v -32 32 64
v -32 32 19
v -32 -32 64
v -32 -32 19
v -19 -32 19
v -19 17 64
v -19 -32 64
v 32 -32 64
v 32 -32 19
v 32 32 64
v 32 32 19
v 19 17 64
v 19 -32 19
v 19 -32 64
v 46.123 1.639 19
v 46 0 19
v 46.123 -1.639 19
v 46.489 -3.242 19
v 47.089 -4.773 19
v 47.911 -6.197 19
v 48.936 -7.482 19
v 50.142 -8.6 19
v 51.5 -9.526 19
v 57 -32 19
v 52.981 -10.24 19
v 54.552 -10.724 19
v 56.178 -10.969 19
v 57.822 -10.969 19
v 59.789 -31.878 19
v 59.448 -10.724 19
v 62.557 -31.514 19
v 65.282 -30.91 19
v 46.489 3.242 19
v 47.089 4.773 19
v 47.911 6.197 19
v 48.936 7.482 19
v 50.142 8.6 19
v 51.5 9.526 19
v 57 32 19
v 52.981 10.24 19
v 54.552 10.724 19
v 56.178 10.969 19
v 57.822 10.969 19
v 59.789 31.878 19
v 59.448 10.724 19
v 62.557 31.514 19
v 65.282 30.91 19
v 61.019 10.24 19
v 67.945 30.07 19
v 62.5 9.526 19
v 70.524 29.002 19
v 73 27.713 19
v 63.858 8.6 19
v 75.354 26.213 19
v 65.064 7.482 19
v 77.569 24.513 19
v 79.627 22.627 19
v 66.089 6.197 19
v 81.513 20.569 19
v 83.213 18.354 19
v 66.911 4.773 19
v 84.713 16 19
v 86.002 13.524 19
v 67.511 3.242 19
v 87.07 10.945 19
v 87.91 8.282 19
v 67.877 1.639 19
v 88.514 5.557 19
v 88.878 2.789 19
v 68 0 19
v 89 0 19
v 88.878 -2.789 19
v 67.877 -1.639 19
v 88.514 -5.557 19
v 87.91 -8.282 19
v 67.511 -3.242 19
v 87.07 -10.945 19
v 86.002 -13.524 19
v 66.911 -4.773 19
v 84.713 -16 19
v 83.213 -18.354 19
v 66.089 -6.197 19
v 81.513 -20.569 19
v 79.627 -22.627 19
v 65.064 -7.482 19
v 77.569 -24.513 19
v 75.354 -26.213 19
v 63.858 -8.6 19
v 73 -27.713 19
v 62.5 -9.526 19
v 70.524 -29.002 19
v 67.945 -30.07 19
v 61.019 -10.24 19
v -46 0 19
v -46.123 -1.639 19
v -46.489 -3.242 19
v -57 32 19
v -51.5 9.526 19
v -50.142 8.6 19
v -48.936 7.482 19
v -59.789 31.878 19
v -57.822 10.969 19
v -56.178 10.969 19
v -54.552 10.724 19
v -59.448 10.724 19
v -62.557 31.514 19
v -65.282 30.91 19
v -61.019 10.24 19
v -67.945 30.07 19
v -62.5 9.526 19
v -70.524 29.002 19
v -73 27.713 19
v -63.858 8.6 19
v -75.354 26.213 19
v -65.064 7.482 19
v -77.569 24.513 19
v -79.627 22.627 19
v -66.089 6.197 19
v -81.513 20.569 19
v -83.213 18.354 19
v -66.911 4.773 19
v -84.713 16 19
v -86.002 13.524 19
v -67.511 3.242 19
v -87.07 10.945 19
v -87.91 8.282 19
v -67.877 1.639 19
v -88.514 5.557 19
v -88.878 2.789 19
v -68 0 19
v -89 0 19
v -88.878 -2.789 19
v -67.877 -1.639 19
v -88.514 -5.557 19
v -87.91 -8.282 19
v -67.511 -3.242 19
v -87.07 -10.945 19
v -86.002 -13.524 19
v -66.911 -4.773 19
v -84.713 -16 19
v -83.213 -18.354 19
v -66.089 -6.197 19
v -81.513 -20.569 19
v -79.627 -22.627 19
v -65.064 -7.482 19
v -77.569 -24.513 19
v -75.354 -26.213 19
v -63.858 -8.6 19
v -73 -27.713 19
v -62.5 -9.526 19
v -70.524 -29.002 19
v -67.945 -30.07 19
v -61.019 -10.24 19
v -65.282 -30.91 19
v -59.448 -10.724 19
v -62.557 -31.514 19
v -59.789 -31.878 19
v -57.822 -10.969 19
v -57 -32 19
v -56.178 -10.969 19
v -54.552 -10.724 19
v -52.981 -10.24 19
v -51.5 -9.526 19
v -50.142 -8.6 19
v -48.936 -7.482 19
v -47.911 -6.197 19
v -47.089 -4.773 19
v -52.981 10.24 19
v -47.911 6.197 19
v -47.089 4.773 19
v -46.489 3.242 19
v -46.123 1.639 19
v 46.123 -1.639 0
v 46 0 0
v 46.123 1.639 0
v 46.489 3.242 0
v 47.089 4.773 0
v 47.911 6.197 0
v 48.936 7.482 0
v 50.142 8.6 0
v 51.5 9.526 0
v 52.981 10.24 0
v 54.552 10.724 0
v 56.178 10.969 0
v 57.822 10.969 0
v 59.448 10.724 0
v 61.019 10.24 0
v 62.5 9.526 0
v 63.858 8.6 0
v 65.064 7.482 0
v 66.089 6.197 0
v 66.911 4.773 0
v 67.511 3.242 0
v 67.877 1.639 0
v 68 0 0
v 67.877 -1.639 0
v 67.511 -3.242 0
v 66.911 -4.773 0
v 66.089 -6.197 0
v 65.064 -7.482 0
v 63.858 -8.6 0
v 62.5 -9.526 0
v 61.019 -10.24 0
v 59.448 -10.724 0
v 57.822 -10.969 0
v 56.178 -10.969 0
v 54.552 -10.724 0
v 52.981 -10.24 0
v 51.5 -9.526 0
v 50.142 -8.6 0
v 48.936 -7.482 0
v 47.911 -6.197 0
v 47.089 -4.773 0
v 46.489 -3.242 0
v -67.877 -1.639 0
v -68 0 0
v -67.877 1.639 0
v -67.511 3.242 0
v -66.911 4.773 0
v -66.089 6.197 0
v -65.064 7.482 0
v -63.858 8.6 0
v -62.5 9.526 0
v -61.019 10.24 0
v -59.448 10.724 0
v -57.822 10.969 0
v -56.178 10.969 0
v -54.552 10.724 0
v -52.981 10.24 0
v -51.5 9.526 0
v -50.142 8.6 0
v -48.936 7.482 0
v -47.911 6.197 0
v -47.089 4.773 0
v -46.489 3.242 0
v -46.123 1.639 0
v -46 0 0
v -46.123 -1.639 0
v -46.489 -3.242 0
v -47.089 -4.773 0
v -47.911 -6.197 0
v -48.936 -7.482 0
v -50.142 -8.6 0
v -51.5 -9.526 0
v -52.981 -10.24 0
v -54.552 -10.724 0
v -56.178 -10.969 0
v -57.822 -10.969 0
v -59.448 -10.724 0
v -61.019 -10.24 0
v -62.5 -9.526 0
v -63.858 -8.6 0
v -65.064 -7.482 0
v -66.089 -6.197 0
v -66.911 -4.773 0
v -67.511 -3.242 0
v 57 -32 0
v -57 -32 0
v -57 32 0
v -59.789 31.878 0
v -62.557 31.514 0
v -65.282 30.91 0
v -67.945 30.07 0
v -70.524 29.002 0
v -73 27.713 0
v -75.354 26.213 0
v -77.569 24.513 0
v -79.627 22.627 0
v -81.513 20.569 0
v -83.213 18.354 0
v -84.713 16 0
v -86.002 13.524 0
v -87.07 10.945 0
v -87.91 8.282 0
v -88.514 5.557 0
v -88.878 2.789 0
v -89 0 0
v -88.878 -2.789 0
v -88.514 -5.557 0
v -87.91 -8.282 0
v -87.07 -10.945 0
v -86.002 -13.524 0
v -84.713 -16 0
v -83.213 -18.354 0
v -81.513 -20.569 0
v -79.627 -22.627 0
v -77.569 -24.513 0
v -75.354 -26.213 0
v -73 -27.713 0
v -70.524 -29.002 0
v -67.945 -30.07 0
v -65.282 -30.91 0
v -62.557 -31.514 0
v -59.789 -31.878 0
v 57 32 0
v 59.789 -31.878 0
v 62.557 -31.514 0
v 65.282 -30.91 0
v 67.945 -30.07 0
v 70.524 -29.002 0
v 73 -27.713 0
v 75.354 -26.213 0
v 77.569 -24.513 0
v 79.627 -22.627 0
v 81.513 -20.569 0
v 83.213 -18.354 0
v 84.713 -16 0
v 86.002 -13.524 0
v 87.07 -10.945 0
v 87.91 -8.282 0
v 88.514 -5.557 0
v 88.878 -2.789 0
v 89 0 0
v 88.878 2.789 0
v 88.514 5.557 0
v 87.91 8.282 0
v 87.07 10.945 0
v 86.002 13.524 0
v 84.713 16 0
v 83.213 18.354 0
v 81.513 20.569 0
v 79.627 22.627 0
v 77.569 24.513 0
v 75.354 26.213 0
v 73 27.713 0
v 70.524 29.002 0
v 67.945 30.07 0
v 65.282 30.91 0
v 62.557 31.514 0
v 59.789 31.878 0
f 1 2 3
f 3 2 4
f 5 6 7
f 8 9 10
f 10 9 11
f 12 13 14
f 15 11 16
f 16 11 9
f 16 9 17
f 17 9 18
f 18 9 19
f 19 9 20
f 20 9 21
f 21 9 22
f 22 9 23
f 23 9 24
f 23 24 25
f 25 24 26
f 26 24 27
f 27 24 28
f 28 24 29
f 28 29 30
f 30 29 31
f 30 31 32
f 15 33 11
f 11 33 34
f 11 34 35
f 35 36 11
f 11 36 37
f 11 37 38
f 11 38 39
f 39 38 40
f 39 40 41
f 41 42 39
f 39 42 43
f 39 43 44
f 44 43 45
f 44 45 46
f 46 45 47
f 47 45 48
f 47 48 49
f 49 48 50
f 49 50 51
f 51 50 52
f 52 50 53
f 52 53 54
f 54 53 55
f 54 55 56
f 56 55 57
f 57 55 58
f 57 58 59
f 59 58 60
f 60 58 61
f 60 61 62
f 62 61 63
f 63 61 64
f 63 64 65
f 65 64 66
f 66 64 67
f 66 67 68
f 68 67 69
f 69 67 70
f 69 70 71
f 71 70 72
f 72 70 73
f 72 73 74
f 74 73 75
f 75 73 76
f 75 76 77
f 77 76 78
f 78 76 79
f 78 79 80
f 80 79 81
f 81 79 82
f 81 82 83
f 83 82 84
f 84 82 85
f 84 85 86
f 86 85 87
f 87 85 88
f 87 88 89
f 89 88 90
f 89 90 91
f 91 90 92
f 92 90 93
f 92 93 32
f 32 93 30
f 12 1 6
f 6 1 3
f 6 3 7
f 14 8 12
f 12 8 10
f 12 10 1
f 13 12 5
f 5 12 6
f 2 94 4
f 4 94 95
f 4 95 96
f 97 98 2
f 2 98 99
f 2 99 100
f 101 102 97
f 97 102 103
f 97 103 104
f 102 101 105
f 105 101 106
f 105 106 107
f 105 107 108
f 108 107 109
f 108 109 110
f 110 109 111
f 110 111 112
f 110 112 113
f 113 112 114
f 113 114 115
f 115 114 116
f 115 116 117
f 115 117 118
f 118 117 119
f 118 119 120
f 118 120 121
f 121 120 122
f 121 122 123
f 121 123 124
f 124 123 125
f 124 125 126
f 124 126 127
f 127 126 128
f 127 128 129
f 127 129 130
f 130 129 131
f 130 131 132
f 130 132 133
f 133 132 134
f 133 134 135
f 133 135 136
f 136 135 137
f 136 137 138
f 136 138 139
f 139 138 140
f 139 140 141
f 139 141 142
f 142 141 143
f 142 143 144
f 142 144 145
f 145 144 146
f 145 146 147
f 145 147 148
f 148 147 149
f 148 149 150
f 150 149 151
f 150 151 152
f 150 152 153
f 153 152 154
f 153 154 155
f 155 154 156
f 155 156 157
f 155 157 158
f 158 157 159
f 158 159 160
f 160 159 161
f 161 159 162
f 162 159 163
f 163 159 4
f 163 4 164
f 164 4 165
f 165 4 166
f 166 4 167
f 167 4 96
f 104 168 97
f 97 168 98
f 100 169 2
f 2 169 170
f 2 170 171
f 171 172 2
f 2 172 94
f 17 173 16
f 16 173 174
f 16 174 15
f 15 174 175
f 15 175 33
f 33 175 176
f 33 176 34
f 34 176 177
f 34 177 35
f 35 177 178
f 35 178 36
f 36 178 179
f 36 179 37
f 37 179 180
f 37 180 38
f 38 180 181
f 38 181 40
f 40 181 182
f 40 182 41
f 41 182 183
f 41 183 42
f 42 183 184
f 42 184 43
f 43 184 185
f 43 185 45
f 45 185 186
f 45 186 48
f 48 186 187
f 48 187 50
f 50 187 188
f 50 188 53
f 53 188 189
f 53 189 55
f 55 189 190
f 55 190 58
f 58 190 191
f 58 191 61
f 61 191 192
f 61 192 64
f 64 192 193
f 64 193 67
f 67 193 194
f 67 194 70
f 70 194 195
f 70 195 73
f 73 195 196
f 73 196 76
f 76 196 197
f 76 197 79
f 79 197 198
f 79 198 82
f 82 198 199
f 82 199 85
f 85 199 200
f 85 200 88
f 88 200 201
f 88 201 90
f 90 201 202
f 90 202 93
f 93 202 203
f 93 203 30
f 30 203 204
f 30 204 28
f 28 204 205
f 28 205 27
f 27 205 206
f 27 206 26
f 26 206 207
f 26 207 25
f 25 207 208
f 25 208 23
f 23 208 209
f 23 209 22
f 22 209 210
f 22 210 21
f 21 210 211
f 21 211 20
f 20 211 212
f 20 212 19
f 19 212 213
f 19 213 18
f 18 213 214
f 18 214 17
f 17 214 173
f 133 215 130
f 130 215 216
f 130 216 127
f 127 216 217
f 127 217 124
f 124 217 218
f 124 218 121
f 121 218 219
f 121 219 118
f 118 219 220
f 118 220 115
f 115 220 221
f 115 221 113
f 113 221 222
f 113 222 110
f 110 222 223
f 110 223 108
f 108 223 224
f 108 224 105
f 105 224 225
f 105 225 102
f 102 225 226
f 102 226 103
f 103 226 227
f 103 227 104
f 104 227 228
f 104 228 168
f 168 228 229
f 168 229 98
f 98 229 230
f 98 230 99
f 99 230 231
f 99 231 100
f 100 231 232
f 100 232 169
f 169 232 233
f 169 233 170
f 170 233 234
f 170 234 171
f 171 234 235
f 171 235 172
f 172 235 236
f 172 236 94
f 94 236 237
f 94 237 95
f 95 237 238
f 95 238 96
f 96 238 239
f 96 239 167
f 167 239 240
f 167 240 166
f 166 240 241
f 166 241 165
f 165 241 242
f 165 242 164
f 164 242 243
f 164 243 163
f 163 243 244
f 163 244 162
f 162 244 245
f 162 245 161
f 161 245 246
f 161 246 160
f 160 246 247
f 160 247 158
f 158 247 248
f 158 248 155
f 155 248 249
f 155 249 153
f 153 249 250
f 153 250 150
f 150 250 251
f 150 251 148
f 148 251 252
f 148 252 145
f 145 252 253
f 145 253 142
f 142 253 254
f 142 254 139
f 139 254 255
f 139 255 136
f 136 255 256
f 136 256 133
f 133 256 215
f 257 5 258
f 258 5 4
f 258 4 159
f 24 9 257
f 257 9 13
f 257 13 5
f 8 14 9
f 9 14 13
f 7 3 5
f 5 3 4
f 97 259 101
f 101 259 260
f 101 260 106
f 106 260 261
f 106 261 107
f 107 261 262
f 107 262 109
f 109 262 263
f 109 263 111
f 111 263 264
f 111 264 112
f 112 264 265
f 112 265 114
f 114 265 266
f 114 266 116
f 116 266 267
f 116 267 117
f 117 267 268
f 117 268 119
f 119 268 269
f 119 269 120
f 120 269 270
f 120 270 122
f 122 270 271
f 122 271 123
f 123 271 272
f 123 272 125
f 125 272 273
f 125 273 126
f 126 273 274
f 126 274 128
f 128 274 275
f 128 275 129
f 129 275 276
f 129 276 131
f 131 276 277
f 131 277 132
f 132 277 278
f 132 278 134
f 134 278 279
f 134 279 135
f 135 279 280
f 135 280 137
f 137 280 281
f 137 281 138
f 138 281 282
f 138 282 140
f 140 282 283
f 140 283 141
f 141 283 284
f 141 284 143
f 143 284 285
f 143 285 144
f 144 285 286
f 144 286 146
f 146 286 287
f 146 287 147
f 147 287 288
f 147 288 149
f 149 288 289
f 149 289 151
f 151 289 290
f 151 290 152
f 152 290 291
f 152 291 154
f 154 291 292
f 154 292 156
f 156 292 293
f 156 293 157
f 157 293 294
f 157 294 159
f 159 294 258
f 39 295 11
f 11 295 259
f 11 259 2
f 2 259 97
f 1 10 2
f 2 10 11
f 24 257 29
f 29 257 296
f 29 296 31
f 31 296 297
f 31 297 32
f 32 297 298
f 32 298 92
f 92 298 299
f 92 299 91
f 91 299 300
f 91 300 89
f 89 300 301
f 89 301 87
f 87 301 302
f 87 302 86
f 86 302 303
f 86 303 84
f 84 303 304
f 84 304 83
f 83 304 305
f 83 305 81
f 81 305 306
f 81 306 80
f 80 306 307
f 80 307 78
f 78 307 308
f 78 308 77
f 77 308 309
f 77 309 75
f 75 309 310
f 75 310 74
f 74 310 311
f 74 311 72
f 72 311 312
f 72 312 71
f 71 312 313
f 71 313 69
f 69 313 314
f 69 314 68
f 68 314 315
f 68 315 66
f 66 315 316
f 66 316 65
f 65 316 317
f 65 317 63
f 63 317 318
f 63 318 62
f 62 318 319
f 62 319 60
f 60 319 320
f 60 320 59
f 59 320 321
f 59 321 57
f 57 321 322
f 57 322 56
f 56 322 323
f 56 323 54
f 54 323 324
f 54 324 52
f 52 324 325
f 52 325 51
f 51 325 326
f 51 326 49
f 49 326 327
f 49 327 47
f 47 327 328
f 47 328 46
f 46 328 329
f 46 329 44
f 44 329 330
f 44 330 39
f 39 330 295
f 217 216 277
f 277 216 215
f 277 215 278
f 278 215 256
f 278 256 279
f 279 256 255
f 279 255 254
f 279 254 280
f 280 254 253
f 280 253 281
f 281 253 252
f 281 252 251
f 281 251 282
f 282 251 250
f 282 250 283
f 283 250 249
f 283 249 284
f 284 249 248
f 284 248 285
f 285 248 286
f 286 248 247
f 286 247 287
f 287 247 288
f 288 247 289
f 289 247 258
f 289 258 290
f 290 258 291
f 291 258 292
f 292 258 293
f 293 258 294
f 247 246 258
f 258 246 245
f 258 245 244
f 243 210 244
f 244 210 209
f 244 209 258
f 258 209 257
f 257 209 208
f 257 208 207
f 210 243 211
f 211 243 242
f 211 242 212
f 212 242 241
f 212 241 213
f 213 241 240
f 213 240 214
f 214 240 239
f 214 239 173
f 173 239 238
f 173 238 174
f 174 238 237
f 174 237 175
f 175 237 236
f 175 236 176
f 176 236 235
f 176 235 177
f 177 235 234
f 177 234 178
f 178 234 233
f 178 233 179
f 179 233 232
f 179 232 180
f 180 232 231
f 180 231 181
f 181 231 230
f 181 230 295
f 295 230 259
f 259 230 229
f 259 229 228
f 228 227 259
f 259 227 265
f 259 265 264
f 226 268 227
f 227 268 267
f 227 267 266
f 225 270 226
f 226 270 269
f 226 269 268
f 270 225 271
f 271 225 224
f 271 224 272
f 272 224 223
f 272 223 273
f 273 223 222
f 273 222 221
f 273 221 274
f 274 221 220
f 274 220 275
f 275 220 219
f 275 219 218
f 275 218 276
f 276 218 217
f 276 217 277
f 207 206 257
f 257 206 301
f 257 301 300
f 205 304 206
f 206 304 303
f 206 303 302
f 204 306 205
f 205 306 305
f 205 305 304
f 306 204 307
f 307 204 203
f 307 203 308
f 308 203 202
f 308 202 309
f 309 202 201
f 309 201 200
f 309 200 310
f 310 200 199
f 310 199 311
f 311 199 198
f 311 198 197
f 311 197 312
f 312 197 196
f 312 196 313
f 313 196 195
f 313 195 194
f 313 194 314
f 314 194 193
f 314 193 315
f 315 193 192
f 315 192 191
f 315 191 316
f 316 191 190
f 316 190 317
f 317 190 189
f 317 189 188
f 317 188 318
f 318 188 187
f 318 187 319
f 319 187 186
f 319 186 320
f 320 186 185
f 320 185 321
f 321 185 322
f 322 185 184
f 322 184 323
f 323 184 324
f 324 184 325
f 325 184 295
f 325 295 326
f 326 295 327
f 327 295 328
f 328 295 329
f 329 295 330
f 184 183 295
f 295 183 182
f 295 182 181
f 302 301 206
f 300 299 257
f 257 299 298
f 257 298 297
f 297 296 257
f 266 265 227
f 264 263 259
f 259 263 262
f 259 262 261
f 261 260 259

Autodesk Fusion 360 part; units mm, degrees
sketch "Sketch1" plane through (0, 0, 0) normal (0, 0, 1) x (1, 0, 0)
  line L0 (57, 32) -> (-57, 32)
  line L1 (-57, 32) -> (-57, -32)
  line L2 (-57, -32) -> (57, -32)
  line L3 (57, -32) -> (57, 32)
  line L4 (57, 32) -> (-57, -32) construction
  line L5 (-57, 32) -> (57, -32) construction
  line L6 (-32, 32) -> (-32, -32) construction
  line L7 (32, 32) -> (32, -32) construction
  circle A0 centre (57, 0) radius 11
  circle A1 centre (-57, 0) radius 11
  circle A2 centre (-57, 0) radius 32
  circle A3 centre (57, 0) radius 32
  dimension "d1" = 114
  dimension "d2" = 64
  dimension "d3" = 64
  dimension "d4" = 25
  dimension "d5" = 22
  dimension "d6" = 22
  dimension "d7" = 32
  dimension "d8" = 32
extrude "Extrude1" add sketch "Sketch1" along normal blind 19 contours L0 L2 A2 A3 | L3 A0 A3 | L3 A0 A3 | L1 A1 A2 | L1 A1 A2
sketch "Sketch2" plane through (0, 0, 0) normal (1, 0, 0) x (0, 1, 0)
  line L0 (-32, 19) -> (32, 19)
  line L1 (32, 19) -> (32, 64)
  line L2 (32, 64) -> (17, 64)
  line L3 (17, 64) -> (-32, 19)
  dimension "d11" = 45
  dimension "d13" = 15
extrude "Extrude2" add sketch "Sketch2" along normal mid plane 38
sketch "Sketch3" plane through (19, 0, 0) normal (1, 0, 0) x (0, 1, 0)
  line L0 (17, 64) -> (-32, 19)
  line L1 (-32, 19) -> (32, 19)
  line L2 (32, 19) -> (32, 64)
  line L3 (32, 64) -> (17, 64)
  line L4 (-32, 19) -> (32, 19)
  line L5 (32, 19) -> (32, 64)
  line L6 (32, 64) -> (-32, 64)
  line L7 (-32, 64) -> (-32, 19)
extrude "Extrude3" add sketch "Sketch3" along normal blind 13
sketch "Sketch4" plane through (-19, 0, 0) normal (-1, 0, 0) x (0, -1, 0)
  line L0 (32, 19) -> (-17, 64)
  line L1 (-17, 64) -> (-32, 64)
  line L2 (-32, 64) -> (-32, 19)
  line L3 (-32, 19) -> (32, 19)
  line L4 (-32, 64) -> (32, 64)
  line L5 (32, 64) -> (32, 19)
  line L6 (32, 19) -> (-32, 19)
  line L7 (-32, 64) -> (-32, 19)
extrude "Extrude4" add sketch "Sketch4" along normal blind 13
